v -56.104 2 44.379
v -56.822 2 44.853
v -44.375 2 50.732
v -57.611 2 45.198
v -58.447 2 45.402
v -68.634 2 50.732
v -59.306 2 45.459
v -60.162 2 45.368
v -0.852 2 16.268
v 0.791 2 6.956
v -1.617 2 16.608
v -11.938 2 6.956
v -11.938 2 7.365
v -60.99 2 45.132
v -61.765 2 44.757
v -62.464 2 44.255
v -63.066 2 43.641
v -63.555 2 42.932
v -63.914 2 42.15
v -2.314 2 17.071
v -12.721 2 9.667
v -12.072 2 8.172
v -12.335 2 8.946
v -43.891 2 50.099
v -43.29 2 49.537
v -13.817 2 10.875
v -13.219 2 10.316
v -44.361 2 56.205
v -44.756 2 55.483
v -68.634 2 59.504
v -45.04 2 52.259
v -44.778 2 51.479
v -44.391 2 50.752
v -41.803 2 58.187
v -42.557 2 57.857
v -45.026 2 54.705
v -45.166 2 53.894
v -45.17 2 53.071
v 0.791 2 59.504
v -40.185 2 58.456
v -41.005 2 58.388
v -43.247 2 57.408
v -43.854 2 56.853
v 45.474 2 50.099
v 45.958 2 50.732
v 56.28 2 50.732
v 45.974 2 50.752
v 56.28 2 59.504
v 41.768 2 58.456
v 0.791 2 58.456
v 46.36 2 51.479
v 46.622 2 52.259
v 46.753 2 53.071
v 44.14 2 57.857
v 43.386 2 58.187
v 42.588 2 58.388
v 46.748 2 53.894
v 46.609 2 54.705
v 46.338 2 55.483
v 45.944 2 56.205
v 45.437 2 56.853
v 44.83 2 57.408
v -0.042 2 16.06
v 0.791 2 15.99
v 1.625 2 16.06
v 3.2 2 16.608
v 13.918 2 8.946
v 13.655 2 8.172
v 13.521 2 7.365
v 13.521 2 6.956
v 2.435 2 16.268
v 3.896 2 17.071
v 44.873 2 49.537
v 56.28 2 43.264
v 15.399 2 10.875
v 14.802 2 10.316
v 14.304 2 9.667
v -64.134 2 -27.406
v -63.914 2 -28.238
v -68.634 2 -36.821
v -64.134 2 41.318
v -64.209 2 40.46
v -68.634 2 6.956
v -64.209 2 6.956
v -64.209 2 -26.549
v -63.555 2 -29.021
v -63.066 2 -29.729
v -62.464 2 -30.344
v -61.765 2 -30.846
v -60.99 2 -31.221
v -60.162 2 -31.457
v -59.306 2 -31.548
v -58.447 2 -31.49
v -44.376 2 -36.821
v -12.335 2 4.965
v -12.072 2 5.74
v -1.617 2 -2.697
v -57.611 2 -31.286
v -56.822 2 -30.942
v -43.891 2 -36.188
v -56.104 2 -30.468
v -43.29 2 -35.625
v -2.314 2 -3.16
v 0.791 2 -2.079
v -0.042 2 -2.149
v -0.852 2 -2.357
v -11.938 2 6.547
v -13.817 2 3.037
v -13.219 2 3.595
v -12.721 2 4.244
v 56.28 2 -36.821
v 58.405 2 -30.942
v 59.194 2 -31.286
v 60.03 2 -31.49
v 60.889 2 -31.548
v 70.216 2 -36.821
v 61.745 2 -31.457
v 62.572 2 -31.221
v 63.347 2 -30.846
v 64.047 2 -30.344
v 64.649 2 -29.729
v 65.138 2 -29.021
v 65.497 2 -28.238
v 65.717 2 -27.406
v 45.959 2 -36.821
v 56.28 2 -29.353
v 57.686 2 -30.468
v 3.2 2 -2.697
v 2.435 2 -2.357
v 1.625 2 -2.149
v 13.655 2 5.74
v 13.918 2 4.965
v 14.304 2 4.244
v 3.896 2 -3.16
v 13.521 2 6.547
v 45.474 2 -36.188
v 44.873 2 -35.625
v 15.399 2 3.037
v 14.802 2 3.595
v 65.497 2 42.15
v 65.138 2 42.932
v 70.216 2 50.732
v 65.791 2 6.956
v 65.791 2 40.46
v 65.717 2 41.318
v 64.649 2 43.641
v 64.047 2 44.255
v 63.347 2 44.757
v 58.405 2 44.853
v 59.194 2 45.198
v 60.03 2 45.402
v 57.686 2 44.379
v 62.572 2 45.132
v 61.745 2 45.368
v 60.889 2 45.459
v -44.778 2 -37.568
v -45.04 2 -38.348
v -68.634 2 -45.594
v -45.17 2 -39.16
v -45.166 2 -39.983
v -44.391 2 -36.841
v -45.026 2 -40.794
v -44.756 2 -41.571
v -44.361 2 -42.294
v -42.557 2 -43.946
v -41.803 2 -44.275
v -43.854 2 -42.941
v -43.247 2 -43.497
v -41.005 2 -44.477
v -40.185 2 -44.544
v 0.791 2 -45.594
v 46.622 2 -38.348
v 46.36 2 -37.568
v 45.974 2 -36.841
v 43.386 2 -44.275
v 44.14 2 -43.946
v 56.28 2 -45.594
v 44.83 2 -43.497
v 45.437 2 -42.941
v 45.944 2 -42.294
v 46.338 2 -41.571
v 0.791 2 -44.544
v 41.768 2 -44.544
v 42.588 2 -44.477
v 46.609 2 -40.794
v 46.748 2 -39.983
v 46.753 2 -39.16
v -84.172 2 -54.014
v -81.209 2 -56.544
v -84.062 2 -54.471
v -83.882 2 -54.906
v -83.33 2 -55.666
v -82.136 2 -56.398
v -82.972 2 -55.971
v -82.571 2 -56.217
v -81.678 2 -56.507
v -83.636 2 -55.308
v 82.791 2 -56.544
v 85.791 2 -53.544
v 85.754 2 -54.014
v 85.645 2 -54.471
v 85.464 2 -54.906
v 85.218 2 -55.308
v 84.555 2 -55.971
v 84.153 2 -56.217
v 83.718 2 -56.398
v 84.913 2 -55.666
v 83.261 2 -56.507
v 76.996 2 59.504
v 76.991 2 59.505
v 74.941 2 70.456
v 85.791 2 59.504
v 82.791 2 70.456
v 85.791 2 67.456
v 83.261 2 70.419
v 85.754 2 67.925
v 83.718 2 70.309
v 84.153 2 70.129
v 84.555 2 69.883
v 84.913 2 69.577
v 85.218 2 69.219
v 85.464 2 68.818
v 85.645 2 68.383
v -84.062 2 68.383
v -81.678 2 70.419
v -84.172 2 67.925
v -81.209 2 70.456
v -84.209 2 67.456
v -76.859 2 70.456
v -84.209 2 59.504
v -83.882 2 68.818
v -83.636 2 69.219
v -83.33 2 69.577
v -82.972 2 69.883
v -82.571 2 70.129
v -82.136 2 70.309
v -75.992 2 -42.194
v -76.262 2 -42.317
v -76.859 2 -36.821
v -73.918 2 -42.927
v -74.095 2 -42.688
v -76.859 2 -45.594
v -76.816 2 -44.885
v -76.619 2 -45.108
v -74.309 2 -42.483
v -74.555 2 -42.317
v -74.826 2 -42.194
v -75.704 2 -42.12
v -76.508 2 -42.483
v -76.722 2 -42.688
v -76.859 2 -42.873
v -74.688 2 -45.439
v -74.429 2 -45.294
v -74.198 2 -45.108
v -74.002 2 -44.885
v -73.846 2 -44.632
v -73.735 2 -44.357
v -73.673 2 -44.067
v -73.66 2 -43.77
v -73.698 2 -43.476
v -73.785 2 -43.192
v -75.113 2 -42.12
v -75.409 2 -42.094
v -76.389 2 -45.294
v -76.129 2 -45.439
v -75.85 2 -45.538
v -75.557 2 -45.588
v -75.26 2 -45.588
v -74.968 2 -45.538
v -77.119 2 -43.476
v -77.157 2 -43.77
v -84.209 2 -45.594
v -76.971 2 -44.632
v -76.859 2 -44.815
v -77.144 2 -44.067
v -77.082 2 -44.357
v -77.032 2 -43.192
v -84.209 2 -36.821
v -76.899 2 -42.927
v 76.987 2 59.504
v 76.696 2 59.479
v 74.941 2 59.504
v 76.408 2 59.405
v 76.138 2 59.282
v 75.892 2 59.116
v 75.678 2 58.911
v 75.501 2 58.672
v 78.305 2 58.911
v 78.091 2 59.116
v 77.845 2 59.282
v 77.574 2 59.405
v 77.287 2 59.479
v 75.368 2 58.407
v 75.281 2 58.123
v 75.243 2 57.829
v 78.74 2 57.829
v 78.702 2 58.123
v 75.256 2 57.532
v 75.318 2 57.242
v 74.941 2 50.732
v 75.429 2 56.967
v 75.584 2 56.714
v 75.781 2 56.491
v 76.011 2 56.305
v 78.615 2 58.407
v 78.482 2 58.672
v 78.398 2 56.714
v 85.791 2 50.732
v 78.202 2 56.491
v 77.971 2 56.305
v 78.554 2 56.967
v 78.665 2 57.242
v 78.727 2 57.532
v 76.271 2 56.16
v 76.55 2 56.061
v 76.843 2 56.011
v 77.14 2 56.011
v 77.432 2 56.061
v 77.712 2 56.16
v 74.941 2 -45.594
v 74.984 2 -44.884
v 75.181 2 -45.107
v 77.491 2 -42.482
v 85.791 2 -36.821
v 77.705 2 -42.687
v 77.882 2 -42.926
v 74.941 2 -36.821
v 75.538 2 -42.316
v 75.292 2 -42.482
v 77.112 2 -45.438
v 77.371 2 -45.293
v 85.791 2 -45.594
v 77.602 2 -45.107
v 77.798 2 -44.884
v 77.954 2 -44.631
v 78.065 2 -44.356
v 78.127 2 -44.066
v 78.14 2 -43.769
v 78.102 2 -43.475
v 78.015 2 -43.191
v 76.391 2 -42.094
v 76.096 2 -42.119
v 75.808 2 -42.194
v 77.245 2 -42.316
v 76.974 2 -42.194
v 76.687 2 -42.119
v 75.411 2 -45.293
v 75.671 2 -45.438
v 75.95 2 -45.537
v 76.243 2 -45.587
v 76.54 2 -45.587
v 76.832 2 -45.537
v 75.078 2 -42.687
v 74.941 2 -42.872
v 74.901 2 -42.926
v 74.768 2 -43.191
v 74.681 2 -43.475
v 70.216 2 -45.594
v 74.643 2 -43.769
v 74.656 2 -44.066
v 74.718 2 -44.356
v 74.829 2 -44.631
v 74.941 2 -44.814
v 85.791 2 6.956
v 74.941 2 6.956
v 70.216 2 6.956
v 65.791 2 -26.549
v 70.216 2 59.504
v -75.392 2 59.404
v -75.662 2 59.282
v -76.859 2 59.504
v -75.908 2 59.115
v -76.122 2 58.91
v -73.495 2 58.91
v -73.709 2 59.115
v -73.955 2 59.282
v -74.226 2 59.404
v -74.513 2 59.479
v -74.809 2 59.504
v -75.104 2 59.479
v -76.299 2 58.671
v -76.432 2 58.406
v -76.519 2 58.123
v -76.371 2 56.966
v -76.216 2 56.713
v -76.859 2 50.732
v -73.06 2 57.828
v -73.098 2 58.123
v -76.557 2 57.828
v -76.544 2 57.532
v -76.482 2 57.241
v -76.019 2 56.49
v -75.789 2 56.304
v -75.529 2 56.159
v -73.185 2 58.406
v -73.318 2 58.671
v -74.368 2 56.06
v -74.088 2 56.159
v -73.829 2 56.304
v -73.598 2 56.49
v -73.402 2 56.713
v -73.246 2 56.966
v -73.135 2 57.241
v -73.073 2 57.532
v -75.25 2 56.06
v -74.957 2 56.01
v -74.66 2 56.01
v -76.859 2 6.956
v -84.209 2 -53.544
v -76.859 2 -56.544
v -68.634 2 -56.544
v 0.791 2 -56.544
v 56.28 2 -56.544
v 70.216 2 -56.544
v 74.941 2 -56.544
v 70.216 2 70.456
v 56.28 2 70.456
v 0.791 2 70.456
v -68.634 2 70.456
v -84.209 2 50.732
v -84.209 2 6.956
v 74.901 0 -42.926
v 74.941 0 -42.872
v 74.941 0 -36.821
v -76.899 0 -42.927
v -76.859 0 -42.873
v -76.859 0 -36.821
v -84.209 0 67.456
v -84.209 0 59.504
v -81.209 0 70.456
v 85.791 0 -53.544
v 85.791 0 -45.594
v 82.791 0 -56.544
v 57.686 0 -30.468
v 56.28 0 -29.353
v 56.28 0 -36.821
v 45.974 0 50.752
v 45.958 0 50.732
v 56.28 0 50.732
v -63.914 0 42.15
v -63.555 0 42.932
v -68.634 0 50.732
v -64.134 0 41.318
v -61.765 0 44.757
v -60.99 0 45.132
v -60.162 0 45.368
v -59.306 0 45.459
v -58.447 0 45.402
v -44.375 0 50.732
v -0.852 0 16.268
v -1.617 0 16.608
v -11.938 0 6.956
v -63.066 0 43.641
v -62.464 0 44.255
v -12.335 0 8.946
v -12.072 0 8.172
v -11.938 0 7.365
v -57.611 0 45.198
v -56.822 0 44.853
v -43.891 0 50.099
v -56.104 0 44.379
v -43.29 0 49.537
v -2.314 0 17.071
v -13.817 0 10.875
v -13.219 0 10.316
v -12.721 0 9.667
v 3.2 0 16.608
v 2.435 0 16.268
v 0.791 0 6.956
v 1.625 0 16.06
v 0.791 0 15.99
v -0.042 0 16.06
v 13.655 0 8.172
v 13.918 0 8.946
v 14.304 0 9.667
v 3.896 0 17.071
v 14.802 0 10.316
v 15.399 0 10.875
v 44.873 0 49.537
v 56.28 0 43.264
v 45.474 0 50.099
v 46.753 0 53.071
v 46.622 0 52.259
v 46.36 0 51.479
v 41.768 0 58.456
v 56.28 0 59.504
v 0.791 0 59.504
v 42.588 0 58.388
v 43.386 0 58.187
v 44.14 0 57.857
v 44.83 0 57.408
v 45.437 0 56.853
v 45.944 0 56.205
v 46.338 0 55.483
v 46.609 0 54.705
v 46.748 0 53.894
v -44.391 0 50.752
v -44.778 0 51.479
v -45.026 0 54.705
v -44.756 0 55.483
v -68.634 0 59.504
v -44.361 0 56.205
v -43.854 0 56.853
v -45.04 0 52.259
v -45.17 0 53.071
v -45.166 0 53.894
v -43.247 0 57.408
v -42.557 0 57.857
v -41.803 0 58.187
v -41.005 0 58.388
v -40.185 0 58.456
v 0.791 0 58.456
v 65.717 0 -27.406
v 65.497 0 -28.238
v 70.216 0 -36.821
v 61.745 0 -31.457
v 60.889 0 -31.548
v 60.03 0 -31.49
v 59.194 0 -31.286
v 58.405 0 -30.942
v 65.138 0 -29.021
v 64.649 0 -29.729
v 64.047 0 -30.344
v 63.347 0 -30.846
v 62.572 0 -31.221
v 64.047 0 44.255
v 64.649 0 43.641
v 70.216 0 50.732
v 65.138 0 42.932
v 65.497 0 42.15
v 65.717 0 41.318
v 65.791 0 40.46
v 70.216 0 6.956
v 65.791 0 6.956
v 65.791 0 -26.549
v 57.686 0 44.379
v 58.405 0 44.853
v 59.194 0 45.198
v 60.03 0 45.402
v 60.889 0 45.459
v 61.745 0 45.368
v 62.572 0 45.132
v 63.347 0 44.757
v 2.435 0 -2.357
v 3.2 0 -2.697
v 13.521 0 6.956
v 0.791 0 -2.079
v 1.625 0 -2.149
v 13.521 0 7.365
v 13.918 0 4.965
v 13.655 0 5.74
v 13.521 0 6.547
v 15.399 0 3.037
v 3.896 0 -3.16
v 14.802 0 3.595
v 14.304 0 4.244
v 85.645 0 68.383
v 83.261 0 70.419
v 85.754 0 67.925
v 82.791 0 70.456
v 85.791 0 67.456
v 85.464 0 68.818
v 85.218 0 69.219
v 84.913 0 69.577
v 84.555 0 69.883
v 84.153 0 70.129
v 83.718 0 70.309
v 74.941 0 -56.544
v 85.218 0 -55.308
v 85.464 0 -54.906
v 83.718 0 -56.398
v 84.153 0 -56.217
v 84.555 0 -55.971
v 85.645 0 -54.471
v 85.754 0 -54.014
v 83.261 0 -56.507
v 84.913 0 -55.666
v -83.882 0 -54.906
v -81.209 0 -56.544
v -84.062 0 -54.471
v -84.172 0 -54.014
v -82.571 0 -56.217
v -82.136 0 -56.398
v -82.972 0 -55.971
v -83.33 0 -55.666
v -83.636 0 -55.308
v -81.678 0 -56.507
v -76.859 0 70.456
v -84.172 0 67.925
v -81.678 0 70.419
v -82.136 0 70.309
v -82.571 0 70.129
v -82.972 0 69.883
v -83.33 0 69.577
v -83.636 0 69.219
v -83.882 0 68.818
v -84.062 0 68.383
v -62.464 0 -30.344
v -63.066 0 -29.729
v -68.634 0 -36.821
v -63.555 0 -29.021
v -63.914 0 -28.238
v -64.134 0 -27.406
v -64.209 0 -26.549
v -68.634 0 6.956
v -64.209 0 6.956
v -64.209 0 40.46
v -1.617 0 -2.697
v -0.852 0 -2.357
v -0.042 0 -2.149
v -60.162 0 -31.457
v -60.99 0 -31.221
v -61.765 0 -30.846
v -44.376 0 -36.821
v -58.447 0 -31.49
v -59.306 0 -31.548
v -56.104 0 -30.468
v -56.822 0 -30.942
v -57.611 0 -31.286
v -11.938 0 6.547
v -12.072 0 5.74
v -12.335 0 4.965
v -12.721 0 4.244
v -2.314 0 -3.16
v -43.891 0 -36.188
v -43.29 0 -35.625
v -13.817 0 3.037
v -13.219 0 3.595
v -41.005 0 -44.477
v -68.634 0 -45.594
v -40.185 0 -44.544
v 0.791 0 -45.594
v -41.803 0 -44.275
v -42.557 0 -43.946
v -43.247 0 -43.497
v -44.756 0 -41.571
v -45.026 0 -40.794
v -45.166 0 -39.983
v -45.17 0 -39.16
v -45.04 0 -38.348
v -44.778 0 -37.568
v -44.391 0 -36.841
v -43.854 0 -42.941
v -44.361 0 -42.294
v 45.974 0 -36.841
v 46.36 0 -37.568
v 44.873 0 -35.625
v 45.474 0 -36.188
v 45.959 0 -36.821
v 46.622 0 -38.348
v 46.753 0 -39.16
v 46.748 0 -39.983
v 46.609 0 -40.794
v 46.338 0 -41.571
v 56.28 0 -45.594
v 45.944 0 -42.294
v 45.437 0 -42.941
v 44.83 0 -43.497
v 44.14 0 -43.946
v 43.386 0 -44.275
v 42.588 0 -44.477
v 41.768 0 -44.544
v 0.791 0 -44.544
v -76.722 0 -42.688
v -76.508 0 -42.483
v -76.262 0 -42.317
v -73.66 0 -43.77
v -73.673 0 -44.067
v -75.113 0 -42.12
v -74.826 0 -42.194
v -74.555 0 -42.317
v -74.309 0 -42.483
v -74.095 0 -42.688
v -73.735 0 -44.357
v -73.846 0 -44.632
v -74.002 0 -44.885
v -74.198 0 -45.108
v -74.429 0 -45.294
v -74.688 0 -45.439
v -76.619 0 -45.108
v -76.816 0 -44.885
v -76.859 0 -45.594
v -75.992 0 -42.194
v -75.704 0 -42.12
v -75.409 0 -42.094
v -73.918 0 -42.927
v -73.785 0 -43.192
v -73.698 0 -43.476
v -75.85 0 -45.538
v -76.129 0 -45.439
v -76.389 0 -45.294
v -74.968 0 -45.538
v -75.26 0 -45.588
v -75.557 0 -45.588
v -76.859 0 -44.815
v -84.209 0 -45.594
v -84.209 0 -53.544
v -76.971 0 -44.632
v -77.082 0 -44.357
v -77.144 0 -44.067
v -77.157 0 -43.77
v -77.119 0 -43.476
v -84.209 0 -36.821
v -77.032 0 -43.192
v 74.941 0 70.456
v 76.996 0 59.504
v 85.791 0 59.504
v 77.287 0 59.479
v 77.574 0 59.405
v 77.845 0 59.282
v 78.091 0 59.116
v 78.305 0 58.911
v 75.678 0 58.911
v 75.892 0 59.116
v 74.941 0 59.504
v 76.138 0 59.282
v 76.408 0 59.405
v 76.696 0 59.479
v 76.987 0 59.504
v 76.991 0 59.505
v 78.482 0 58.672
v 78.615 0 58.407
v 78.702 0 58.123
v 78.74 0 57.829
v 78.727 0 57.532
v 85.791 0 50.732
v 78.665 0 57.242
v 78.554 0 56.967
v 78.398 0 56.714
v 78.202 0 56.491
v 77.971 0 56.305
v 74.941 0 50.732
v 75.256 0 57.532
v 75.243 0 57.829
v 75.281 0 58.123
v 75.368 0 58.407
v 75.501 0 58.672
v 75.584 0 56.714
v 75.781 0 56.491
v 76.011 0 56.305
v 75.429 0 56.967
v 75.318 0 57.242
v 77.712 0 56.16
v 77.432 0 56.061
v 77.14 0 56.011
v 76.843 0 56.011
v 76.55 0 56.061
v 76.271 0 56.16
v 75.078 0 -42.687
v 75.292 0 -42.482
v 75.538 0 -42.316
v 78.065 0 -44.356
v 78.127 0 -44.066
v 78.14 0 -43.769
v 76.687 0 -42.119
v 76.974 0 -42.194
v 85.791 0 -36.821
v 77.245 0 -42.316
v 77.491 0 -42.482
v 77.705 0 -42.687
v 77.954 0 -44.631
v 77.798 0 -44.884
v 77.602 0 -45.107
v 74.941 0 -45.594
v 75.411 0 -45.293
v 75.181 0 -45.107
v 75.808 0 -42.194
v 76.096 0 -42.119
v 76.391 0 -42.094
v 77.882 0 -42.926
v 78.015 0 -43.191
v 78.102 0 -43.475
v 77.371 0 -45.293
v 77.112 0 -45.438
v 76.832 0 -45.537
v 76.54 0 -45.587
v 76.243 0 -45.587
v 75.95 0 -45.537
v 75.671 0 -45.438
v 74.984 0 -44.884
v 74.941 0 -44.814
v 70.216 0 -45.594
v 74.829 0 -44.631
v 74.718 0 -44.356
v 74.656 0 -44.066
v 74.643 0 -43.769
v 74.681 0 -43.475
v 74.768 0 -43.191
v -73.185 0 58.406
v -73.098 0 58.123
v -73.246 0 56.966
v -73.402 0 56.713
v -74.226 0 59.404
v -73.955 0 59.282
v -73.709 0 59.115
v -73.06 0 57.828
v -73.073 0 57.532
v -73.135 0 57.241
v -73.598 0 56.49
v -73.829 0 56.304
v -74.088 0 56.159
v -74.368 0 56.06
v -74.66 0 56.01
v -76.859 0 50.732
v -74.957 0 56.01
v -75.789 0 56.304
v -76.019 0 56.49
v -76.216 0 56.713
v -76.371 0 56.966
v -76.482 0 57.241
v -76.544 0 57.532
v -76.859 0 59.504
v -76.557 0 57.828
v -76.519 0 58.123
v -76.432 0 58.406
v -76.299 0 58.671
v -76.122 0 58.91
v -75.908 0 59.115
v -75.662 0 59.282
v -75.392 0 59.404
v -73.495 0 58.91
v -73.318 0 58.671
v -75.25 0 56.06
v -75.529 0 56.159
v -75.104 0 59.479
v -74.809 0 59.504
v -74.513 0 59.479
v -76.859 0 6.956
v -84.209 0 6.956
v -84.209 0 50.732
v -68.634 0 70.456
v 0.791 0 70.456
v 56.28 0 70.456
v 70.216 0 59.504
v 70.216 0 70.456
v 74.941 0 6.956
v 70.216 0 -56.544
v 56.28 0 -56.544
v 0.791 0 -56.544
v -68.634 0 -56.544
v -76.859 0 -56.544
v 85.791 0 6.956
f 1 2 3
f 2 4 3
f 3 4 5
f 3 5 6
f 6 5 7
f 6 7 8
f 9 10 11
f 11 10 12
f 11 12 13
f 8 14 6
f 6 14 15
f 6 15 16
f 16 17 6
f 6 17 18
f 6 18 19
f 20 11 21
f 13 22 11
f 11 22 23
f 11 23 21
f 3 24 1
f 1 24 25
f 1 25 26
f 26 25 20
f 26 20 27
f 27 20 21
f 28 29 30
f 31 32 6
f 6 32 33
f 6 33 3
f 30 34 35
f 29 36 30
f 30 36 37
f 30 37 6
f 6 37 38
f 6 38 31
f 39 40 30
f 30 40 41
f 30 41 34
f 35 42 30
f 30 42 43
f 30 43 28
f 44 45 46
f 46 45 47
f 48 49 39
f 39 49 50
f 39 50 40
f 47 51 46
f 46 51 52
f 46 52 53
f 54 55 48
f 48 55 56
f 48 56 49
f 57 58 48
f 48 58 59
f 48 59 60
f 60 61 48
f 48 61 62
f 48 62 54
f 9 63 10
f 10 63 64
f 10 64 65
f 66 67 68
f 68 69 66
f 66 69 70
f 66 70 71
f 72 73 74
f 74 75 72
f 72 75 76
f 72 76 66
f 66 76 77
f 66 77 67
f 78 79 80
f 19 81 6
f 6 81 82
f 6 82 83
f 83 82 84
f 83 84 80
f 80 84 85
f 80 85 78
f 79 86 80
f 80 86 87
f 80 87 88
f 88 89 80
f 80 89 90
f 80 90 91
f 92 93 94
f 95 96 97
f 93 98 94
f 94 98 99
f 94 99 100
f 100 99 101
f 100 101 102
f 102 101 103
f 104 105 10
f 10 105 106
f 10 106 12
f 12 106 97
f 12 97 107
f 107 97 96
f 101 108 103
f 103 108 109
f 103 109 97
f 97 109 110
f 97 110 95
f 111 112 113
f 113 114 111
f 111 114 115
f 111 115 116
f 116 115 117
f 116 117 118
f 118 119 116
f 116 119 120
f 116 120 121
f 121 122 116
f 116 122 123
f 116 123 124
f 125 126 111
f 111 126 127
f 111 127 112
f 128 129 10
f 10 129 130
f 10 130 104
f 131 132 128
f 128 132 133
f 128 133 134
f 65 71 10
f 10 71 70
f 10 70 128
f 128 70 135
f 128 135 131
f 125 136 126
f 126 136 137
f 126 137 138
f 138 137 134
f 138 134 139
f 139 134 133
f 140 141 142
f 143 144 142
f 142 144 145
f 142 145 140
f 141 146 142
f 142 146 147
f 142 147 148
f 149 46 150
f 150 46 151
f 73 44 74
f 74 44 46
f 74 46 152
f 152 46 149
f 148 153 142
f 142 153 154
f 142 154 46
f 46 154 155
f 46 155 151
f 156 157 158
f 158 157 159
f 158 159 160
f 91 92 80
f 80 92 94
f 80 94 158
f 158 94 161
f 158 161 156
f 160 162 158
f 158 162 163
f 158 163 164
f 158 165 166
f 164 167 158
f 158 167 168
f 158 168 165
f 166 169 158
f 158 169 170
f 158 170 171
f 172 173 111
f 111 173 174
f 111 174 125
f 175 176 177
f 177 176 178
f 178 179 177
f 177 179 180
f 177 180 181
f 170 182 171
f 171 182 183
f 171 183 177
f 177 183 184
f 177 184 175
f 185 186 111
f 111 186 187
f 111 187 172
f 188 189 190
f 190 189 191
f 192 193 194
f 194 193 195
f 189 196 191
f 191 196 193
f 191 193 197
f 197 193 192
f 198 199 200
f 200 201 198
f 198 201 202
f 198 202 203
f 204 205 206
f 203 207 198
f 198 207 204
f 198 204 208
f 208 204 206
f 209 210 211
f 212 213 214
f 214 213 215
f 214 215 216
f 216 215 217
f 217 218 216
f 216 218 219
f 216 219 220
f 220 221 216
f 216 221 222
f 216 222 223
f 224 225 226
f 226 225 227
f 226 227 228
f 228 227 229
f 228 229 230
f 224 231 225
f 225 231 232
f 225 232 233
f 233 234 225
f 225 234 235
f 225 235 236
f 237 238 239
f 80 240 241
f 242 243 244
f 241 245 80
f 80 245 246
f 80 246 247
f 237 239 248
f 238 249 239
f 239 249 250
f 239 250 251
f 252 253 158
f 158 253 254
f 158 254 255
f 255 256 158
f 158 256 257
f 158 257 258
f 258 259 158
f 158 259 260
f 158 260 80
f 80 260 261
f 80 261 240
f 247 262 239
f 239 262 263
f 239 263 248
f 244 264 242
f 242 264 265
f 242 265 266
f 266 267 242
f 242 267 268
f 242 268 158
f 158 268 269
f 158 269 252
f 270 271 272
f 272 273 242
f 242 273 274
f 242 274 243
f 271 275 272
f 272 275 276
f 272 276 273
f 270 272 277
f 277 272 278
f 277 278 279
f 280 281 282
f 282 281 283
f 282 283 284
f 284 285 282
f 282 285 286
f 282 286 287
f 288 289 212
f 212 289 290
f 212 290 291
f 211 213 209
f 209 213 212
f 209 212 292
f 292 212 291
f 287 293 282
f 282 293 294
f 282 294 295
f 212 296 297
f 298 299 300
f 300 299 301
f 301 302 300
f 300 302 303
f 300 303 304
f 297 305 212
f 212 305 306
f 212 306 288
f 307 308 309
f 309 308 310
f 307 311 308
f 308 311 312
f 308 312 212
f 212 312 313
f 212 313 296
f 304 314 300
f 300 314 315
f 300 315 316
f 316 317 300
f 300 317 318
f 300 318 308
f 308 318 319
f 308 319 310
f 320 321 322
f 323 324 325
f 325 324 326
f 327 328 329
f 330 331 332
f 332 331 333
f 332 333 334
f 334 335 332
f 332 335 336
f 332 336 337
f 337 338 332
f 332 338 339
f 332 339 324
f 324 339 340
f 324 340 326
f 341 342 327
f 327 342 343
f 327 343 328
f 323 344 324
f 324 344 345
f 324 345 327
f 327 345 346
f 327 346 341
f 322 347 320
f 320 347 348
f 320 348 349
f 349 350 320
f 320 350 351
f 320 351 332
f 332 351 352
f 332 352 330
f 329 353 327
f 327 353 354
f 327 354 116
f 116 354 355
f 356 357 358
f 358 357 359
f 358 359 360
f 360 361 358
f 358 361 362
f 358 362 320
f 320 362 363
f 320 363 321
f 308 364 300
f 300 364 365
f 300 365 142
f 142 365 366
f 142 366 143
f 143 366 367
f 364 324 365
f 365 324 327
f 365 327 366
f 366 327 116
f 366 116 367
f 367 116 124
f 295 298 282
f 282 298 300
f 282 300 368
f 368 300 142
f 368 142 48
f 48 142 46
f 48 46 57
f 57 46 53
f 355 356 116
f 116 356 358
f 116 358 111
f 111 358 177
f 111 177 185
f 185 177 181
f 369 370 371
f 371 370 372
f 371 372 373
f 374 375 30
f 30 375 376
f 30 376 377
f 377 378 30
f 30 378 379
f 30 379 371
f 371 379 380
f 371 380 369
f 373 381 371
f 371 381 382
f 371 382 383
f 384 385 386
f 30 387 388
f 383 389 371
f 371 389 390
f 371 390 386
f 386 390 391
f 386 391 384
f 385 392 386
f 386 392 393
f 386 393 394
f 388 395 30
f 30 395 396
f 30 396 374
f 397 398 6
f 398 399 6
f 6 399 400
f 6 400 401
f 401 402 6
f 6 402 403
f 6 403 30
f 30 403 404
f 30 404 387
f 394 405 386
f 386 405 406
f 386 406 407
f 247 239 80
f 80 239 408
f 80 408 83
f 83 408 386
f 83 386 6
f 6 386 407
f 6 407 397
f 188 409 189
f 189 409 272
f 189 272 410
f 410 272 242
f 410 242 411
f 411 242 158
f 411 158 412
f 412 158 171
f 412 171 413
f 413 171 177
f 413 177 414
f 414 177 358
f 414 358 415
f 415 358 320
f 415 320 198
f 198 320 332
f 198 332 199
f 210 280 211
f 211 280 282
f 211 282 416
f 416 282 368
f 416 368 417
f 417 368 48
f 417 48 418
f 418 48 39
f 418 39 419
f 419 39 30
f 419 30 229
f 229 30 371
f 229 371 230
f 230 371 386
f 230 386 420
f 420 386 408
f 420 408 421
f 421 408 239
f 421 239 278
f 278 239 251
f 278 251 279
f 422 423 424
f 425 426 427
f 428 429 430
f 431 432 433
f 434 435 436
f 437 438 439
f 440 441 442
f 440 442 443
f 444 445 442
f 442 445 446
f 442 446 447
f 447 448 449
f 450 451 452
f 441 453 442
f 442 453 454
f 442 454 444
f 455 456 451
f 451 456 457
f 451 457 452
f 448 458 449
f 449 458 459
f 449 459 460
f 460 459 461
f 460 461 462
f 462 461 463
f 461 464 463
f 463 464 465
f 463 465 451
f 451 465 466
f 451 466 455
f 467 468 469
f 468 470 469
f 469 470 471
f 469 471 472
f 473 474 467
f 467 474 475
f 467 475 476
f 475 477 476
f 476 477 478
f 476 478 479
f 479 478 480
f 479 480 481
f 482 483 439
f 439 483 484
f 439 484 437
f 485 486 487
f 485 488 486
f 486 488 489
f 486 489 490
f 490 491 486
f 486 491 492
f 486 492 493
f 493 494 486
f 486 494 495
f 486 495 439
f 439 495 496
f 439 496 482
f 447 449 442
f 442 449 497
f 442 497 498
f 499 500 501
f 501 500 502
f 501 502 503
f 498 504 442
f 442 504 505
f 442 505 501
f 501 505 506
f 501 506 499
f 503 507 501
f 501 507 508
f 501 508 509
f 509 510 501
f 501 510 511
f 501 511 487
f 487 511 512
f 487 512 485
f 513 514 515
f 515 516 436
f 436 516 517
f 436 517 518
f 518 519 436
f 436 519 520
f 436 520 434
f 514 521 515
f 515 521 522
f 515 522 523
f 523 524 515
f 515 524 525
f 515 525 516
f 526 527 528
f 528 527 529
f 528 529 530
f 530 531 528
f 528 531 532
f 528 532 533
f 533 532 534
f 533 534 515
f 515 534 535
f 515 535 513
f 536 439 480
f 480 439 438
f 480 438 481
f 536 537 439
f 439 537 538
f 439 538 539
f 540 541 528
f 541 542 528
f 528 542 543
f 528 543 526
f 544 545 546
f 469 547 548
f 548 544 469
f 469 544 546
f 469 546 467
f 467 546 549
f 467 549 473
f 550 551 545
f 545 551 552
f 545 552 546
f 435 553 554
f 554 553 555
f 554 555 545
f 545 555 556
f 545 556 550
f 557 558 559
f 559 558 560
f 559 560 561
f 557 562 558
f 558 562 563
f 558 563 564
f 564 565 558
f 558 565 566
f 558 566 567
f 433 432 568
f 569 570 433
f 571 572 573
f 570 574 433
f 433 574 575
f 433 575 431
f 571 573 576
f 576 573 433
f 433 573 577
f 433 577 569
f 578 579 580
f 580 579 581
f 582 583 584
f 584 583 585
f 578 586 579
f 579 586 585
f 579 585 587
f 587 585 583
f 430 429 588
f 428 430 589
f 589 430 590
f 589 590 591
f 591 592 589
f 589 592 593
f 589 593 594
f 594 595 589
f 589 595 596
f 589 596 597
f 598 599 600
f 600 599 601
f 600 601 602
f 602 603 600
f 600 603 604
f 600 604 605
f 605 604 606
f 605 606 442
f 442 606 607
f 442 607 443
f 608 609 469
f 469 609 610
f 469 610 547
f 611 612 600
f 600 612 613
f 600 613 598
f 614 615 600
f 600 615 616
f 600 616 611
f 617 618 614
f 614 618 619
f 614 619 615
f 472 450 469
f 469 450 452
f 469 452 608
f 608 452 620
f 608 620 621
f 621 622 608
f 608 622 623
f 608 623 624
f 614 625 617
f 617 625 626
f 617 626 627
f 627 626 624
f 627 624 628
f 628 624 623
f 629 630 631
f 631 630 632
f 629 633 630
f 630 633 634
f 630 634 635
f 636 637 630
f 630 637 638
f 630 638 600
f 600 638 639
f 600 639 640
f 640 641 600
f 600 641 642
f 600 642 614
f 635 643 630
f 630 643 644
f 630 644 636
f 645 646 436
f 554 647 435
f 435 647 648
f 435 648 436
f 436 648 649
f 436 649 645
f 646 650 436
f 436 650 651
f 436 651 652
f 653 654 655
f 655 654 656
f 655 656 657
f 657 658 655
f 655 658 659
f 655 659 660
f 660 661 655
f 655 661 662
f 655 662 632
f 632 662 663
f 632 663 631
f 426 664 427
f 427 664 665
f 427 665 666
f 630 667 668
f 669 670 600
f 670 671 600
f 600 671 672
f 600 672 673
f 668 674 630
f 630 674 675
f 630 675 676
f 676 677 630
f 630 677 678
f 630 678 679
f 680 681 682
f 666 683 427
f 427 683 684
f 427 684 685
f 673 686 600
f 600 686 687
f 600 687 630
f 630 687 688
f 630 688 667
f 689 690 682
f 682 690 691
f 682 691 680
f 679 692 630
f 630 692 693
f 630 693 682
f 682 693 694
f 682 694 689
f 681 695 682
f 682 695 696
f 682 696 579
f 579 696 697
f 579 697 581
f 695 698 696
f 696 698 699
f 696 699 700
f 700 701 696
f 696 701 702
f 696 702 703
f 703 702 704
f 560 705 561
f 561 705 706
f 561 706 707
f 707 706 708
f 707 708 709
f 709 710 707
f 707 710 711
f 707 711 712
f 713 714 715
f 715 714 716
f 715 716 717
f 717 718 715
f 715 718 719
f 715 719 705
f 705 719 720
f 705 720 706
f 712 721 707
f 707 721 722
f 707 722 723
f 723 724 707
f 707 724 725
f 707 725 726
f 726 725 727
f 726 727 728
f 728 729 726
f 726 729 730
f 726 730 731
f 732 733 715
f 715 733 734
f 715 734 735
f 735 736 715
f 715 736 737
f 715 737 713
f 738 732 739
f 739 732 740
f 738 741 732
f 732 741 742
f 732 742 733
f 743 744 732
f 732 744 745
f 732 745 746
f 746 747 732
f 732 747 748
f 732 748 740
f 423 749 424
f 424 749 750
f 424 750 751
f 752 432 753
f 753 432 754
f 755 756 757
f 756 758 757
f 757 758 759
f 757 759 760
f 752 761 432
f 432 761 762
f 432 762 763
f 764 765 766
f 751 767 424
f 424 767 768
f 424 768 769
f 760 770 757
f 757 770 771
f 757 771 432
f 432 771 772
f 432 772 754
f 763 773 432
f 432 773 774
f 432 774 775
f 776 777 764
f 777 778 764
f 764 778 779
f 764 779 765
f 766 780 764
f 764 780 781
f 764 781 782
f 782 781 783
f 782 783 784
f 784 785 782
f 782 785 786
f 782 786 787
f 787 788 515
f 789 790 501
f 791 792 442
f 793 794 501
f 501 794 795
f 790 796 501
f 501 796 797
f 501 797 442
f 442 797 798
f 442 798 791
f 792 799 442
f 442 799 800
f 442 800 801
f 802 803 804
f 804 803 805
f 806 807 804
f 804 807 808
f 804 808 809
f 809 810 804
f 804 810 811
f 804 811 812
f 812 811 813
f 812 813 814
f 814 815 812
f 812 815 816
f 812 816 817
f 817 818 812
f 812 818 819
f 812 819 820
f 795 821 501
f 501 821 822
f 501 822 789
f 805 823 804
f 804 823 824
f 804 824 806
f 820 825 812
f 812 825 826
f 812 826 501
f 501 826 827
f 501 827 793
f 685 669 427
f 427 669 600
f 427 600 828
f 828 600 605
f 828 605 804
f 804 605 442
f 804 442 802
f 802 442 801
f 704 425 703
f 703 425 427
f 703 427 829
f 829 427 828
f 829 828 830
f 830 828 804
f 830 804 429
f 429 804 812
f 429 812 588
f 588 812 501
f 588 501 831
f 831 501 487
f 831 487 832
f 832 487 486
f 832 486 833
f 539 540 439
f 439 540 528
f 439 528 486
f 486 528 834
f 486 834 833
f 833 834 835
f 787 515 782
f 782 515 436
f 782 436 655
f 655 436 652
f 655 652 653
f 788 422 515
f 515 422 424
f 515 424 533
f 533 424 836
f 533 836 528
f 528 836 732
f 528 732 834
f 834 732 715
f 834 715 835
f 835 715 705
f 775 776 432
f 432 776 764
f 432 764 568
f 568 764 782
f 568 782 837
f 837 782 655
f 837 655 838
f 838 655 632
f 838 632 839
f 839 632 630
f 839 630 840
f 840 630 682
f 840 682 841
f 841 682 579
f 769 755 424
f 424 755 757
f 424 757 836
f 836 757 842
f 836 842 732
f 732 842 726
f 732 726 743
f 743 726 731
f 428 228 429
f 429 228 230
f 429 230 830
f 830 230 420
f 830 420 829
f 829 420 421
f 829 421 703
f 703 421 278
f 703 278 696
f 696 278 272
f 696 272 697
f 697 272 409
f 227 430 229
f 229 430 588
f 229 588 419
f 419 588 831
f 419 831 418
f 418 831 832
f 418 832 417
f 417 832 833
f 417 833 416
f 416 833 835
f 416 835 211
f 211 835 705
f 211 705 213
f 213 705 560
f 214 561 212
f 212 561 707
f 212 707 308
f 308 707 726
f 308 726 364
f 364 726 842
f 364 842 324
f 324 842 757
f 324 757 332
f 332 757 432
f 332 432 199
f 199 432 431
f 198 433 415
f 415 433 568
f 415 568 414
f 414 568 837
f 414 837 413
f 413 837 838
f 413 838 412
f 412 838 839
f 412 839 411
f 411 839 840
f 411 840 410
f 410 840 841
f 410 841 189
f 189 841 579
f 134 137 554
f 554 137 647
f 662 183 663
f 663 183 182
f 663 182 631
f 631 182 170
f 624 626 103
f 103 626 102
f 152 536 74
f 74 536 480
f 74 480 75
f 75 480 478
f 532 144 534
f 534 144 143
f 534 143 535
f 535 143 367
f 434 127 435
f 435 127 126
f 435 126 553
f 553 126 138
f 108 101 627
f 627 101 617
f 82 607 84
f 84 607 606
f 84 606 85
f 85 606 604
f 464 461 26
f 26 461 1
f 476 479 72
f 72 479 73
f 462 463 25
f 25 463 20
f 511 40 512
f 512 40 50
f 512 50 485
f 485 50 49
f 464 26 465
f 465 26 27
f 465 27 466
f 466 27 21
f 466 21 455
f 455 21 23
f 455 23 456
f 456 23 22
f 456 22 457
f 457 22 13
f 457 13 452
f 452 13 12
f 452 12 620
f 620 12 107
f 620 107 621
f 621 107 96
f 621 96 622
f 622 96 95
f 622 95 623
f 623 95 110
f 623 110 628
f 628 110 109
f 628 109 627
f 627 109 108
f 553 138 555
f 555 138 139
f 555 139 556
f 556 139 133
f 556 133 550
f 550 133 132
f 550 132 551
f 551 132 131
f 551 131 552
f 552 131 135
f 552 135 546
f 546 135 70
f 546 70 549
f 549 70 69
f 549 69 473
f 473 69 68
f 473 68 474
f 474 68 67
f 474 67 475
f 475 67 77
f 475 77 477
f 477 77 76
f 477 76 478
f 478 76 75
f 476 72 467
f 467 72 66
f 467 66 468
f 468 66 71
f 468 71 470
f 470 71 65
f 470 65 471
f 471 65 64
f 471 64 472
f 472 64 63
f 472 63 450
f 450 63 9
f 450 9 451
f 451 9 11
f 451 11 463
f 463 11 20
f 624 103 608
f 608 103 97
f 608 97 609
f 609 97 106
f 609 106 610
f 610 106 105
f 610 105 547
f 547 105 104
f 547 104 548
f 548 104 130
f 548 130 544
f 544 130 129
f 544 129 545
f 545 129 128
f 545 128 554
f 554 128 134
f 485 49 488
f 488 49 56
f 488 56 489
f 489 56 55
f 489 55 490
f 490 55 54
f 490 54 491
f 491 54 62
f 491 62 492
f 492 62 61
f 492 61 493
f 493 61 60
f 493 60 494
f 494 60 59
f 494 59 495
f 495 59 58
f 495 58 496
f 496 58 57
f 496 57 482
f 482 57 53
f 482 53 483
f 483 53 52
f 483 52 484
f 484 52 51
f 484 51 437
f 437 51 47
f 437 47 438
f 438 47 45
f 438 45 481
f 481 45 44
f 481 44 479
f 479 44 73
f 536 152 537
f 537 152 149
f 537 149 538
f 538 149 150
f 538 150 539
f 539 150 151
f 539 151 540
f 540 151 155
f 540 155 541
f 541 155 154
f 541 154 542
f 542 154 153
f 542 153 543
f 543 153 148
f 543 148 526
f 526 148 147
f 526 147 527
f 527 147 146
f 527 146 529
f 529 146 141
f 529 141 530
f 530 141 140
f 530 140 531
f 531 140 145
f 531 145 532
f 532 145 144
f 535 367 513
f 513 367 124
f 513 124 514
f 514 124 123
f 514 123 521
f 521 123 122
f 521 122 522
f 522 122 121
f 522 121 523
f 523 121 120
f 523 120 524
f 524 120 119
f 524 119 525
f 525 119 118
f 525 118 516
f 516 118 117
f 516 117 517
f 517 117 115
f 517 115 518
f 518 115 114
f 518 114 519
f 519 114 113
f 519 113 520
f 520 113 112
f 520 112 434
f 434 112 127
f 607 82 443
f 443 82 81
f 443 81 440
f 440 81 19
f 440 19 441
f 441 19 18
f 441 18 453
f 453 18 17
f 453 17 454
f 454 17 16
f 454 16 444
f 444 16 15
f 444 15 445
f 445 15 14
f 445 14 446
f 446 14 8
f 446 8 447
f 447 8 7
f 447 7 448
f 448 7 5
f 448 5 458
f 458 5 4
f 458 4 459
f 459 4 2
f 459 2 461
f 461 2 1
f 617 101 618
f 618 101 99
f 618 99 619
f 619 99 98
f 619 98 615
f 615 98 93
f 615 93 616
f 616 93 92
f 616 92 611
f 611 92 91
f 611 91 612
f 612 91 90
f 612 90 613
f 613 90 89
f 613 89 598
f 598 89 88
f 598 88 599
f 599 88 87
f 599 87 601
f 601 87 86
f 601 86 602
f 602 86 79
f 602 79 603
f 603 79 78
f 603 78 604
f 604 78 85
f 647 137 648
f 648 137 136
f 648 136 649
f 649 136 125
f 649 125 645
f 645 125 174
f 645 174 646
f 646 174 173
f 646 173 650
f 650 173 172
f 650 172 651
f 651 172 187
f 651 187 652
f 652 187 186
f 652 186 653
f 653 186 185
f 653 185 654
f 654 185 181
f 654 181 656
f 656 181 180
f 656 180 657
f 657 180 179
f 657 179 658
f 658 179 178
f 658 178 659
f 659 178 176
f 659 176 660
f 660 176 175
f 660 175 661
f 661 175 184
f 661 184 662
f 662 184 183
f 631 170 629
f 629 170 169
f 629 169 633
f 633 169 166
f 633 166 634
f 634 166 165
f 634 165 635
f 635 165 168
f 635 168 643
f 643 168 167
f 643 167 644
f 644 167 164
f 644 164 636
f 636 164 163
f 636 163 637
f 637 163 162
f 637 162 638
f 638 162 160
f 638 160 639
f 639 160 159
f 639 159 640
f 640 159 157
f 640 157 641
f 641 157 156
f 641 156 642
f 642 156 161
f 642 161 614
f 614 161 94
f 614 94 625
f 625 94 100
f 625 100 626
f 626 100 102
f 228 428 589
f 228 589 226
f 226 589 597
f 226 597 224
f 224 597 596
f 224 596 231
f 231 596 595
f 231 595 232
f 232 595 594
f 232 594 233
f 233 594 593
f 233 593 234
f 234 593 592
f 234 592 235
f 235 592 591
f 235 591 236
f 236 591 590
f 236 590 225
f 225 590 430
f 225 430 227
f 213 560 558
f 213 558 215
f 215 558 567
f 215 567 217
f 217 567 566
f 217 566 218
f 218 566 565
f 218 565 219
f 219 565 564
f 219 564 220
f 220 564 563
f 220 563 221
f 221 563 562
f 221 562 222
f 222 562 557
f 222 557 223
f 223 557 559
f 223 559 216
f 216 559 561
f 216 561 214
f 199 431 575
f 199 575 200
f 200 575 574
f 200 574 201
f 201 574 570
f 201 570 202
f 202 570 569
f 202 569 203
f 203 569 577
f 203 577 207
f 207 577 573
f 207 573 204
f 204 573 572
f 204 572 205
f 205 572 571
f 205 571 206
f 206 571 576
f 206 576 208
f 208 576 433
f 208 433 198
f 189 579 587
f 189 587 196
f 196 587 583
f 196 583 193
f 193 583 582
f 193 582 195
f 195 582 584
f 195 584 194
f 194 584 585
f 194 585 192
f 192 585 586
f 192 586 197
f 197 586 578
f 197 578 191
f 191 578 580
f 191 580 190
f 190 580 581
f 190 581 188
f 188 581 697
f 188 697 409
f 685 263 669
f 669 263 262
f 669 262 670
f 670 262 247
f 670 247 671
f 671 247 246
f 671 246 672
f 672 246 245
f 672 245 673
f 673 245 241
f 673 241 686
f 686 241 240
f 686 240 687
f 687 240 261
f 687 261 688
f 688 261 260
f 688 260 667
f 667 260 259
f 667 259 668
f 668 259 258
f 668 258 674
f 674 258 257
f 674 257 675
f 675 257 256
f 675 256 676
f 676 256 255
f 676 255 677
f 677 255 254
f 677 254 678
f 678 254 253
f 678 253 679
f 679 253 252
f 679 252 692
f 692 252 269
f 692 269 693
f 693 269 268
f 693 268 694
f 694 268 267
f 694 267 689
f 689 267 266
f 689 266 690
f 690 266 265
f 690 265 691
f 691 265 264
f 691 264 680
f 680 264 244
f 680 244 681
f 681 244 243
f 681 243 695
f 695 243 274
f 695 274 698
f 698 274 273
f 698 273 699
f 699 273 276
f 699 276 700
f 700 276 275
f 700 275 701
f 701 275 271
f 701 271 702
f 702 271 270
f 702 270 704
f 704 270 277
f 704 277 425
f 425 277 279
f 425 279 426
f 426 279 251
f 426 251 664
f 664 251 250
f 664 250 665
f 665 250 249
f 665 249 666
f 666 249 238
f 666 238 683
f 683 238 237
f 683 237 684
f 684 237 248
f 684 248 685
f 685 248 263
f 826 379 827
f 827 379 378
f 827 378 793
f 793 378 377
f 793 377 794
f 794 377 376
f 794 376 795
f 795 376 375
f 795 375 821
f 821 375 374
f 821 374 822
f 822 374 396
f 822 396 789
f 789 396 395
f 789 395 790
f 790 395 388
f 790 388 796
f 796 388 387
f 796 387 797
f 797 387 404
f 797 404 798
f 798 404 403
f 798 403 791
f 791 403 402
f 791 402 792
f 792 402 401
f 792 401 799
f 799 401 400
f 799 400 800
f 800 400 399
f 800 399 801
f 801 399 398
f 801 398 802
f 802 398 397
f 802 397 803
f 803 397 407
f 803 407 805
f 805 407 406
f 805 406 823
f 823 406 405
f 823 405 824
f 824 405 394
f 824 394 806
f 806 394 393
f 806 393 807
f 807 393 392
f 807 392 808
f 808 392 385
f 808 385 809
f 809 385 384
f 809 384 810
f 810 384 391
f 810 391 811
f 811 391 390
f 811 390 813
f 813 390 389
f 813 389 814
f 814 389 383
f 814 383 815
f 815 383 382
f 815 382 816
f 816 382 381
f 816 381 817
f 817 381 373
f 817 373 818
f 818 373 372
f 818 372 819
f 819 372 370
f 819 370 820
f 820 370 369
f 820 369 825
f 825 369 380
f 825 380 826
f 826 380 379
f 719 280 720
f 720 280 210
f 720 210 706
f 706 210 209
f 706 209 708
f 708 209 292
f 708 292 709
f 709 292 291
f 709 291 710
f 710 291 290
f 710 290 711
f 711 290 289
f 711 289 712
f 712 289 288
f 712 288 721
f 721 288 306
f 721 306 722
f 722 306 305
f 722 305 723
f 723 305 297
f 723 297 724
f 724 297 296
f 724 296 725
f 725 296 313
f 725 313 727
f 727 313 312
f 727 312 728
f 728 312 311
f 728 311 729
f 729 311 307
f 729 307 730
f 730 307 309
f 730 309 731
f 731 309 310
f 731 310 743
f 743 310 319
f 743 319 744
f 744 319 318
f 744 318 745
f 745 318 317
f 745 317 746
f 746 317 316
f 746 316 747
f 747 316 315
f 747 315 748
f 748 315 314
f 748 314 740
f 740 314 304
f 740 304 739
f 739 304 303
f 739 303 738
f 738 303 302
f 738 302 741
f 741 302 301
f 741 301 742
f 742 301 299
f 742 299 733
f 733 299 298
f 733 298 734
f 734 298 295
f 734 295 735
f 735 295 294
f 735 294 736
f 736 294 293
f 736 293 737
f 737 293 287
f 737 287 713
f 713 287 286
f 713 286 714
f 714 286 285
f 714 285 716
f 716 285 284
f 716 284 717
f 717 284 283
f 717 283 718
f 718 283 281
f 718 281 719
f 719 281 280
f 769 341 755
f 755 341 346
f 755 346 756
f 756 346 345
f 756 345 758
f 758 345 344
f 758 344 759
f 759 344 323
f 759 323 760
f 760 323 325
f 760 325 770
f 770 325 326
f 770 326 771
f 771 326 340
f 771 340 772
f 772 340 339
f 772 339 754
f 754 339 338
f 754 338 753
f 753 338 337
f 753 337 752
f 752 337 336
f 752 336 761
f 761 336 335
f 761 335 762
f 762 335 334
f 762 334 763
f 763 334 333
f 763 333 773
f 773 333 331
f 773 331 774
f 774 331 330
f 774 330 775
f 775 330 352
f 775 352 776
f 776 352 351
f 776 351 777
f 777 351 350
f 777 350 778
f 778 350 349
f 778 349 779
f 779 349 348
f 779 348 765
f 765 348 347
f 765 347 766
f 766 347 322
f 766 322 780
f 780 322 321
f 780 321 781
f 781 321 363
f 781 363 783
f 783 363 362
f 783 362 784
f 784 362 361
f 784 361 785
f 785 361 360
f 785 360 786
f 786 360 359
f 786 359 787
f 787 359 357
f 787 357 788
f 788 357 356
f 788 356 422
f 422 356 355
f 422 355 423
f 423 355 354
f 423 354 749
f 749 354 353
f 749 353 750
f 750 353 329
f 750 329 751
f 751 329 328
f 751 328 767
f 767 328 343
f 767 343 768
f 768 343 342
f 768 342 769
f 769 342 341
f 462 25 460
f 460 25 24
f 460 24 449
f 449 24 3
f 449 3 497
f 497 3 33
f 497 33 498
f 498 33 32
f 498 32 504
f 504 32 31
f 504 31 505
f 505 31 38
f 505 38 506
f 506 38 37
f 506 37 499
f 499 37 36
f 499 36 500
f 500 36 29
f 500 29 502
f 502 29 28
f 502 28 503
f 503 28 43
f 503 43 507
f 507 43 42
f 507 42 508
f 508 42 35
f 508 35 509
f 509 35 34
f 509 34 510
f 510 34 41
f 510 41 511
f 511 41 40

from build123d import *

# Parameters (mm, degrees)
SKETCH1_W           = 170
SKETCH1_H           = 127
BOSS_EXTRUDE1_DEPTH = 2
FILLET1_R           = 5
FILLET2_R           = 3
SKETCH2_R           = 1.75
CUT_EXTRUDE1_DEPTH  = 3
FILLET3_R           = 5


with BuildPart() as part:
    # Sketch1 → Boss-Extrude1 (new body)
    with BuildSketch(Plane(origin=(0, 0, 0), x_dir=(1, 0, 0), z_dir=(0, 1, 0))):
        with Locations((0.791433892, -6.955632319)):
            Rectangle(SKETCH1_W, SKETCH1_H)
        Polygon((-54.546913293, 44.544367681), (56.129781077, 44.544367681), (0.791433892, 0.699369526), align=None, mode=Mode.SUBTRACT)
        Polygon((-64.208566108, 36.889365836), (-64.208566108, -50.800630474), (-8.870218923, -6.955632319), align=None, mode=Mode.SUBTRACT)
        Polygon((-54.546913293, -58.455632319), (56.129781077, -58.455632319), (0.791433892, -14.610634164), align=None, mode=Mode.SUBTRACT)
        Polygon((65.791433892, 36.889365836), (65.791433892, -50.800630474), (10.453086707, -6.955632319), align=None, mode=Mode.SUBTRACT)
    extrude(amount=BOSS_EXTRUDE1_DEPTH)

    # Fillet1
    fillet1_edges = [part.edges().sort_by_distance(p)[0] for p in [
        (0.791433892, 1, -0.699369526),
        (56.129781077, 1, -44.544367681),
        (-54.546913293, 1, -44.544367681),
        (10.453086707, 1, 6.955632319),
        (65.791433892, 1, 50.800630474),
        (65.791433892, 1, -36.889365836),
        (-8.870218923, 1, 6.955632319),
        (-64.208566108, 1, -36.889365836),
        (-64.208566108, 1, 50.800630474),
        (56.129781077, 1, 58.455632319),
        (0.791433892, 1, 14.610634164),
    ]]
    fillet(fillet1_edges, radius=FILLET1_R)

    # Fillet2
    fillet2_edges = [part.edges().sort_by_distance(p)[0] for p in [
        (-84.208566108, 1, -56.544367681),
        (85.791433892, 1, -56.544367681),
        (85.791433892, 1, 70.455632319),
        (-84.208566108, 1, 70.455632319),
    ]]
    fillet(fillet2_edges, radius=FILLET2_R)

    # Sketch2 → Cut-Extrude1 (cut)
    with BuildSketch(Plane(origin=(0, 2, 0), x_dir=(1, 0, 0), z_dir=(0, 1, 0))):
        with Locations(Location((-75.408566108, 43.844367681, 0), (0, 0, 270))):
            Circle(SKETCH2_R)
        with Locations(Location((76.39143389, 43.843581312, 0), (0, 0, 270))):
            Circle(SKETCH2_R)
        with Locations(Location((76.991433894, -57.754647019, 0), (0, 0, 270))):
            Circle(SKETCH2_R)
        with Locations(Location((-74.808566104, -57.75386065, 0), (0, 0, 270))):
            Circle(SKETCH2_R)
    extrude(amount=-CUT_EXTRUDE1_DEPTH, mode=Mode.SUBTRACT)

    # Fillet3
    fillet3_edges = [part.edges().sort_by_distance(p)[0] for p in [
        (-54.546913293, 1, 58.455632319),
    ]]
    fillet(fillet3_edges, radius=FILLET3_R)


solid = part.part
